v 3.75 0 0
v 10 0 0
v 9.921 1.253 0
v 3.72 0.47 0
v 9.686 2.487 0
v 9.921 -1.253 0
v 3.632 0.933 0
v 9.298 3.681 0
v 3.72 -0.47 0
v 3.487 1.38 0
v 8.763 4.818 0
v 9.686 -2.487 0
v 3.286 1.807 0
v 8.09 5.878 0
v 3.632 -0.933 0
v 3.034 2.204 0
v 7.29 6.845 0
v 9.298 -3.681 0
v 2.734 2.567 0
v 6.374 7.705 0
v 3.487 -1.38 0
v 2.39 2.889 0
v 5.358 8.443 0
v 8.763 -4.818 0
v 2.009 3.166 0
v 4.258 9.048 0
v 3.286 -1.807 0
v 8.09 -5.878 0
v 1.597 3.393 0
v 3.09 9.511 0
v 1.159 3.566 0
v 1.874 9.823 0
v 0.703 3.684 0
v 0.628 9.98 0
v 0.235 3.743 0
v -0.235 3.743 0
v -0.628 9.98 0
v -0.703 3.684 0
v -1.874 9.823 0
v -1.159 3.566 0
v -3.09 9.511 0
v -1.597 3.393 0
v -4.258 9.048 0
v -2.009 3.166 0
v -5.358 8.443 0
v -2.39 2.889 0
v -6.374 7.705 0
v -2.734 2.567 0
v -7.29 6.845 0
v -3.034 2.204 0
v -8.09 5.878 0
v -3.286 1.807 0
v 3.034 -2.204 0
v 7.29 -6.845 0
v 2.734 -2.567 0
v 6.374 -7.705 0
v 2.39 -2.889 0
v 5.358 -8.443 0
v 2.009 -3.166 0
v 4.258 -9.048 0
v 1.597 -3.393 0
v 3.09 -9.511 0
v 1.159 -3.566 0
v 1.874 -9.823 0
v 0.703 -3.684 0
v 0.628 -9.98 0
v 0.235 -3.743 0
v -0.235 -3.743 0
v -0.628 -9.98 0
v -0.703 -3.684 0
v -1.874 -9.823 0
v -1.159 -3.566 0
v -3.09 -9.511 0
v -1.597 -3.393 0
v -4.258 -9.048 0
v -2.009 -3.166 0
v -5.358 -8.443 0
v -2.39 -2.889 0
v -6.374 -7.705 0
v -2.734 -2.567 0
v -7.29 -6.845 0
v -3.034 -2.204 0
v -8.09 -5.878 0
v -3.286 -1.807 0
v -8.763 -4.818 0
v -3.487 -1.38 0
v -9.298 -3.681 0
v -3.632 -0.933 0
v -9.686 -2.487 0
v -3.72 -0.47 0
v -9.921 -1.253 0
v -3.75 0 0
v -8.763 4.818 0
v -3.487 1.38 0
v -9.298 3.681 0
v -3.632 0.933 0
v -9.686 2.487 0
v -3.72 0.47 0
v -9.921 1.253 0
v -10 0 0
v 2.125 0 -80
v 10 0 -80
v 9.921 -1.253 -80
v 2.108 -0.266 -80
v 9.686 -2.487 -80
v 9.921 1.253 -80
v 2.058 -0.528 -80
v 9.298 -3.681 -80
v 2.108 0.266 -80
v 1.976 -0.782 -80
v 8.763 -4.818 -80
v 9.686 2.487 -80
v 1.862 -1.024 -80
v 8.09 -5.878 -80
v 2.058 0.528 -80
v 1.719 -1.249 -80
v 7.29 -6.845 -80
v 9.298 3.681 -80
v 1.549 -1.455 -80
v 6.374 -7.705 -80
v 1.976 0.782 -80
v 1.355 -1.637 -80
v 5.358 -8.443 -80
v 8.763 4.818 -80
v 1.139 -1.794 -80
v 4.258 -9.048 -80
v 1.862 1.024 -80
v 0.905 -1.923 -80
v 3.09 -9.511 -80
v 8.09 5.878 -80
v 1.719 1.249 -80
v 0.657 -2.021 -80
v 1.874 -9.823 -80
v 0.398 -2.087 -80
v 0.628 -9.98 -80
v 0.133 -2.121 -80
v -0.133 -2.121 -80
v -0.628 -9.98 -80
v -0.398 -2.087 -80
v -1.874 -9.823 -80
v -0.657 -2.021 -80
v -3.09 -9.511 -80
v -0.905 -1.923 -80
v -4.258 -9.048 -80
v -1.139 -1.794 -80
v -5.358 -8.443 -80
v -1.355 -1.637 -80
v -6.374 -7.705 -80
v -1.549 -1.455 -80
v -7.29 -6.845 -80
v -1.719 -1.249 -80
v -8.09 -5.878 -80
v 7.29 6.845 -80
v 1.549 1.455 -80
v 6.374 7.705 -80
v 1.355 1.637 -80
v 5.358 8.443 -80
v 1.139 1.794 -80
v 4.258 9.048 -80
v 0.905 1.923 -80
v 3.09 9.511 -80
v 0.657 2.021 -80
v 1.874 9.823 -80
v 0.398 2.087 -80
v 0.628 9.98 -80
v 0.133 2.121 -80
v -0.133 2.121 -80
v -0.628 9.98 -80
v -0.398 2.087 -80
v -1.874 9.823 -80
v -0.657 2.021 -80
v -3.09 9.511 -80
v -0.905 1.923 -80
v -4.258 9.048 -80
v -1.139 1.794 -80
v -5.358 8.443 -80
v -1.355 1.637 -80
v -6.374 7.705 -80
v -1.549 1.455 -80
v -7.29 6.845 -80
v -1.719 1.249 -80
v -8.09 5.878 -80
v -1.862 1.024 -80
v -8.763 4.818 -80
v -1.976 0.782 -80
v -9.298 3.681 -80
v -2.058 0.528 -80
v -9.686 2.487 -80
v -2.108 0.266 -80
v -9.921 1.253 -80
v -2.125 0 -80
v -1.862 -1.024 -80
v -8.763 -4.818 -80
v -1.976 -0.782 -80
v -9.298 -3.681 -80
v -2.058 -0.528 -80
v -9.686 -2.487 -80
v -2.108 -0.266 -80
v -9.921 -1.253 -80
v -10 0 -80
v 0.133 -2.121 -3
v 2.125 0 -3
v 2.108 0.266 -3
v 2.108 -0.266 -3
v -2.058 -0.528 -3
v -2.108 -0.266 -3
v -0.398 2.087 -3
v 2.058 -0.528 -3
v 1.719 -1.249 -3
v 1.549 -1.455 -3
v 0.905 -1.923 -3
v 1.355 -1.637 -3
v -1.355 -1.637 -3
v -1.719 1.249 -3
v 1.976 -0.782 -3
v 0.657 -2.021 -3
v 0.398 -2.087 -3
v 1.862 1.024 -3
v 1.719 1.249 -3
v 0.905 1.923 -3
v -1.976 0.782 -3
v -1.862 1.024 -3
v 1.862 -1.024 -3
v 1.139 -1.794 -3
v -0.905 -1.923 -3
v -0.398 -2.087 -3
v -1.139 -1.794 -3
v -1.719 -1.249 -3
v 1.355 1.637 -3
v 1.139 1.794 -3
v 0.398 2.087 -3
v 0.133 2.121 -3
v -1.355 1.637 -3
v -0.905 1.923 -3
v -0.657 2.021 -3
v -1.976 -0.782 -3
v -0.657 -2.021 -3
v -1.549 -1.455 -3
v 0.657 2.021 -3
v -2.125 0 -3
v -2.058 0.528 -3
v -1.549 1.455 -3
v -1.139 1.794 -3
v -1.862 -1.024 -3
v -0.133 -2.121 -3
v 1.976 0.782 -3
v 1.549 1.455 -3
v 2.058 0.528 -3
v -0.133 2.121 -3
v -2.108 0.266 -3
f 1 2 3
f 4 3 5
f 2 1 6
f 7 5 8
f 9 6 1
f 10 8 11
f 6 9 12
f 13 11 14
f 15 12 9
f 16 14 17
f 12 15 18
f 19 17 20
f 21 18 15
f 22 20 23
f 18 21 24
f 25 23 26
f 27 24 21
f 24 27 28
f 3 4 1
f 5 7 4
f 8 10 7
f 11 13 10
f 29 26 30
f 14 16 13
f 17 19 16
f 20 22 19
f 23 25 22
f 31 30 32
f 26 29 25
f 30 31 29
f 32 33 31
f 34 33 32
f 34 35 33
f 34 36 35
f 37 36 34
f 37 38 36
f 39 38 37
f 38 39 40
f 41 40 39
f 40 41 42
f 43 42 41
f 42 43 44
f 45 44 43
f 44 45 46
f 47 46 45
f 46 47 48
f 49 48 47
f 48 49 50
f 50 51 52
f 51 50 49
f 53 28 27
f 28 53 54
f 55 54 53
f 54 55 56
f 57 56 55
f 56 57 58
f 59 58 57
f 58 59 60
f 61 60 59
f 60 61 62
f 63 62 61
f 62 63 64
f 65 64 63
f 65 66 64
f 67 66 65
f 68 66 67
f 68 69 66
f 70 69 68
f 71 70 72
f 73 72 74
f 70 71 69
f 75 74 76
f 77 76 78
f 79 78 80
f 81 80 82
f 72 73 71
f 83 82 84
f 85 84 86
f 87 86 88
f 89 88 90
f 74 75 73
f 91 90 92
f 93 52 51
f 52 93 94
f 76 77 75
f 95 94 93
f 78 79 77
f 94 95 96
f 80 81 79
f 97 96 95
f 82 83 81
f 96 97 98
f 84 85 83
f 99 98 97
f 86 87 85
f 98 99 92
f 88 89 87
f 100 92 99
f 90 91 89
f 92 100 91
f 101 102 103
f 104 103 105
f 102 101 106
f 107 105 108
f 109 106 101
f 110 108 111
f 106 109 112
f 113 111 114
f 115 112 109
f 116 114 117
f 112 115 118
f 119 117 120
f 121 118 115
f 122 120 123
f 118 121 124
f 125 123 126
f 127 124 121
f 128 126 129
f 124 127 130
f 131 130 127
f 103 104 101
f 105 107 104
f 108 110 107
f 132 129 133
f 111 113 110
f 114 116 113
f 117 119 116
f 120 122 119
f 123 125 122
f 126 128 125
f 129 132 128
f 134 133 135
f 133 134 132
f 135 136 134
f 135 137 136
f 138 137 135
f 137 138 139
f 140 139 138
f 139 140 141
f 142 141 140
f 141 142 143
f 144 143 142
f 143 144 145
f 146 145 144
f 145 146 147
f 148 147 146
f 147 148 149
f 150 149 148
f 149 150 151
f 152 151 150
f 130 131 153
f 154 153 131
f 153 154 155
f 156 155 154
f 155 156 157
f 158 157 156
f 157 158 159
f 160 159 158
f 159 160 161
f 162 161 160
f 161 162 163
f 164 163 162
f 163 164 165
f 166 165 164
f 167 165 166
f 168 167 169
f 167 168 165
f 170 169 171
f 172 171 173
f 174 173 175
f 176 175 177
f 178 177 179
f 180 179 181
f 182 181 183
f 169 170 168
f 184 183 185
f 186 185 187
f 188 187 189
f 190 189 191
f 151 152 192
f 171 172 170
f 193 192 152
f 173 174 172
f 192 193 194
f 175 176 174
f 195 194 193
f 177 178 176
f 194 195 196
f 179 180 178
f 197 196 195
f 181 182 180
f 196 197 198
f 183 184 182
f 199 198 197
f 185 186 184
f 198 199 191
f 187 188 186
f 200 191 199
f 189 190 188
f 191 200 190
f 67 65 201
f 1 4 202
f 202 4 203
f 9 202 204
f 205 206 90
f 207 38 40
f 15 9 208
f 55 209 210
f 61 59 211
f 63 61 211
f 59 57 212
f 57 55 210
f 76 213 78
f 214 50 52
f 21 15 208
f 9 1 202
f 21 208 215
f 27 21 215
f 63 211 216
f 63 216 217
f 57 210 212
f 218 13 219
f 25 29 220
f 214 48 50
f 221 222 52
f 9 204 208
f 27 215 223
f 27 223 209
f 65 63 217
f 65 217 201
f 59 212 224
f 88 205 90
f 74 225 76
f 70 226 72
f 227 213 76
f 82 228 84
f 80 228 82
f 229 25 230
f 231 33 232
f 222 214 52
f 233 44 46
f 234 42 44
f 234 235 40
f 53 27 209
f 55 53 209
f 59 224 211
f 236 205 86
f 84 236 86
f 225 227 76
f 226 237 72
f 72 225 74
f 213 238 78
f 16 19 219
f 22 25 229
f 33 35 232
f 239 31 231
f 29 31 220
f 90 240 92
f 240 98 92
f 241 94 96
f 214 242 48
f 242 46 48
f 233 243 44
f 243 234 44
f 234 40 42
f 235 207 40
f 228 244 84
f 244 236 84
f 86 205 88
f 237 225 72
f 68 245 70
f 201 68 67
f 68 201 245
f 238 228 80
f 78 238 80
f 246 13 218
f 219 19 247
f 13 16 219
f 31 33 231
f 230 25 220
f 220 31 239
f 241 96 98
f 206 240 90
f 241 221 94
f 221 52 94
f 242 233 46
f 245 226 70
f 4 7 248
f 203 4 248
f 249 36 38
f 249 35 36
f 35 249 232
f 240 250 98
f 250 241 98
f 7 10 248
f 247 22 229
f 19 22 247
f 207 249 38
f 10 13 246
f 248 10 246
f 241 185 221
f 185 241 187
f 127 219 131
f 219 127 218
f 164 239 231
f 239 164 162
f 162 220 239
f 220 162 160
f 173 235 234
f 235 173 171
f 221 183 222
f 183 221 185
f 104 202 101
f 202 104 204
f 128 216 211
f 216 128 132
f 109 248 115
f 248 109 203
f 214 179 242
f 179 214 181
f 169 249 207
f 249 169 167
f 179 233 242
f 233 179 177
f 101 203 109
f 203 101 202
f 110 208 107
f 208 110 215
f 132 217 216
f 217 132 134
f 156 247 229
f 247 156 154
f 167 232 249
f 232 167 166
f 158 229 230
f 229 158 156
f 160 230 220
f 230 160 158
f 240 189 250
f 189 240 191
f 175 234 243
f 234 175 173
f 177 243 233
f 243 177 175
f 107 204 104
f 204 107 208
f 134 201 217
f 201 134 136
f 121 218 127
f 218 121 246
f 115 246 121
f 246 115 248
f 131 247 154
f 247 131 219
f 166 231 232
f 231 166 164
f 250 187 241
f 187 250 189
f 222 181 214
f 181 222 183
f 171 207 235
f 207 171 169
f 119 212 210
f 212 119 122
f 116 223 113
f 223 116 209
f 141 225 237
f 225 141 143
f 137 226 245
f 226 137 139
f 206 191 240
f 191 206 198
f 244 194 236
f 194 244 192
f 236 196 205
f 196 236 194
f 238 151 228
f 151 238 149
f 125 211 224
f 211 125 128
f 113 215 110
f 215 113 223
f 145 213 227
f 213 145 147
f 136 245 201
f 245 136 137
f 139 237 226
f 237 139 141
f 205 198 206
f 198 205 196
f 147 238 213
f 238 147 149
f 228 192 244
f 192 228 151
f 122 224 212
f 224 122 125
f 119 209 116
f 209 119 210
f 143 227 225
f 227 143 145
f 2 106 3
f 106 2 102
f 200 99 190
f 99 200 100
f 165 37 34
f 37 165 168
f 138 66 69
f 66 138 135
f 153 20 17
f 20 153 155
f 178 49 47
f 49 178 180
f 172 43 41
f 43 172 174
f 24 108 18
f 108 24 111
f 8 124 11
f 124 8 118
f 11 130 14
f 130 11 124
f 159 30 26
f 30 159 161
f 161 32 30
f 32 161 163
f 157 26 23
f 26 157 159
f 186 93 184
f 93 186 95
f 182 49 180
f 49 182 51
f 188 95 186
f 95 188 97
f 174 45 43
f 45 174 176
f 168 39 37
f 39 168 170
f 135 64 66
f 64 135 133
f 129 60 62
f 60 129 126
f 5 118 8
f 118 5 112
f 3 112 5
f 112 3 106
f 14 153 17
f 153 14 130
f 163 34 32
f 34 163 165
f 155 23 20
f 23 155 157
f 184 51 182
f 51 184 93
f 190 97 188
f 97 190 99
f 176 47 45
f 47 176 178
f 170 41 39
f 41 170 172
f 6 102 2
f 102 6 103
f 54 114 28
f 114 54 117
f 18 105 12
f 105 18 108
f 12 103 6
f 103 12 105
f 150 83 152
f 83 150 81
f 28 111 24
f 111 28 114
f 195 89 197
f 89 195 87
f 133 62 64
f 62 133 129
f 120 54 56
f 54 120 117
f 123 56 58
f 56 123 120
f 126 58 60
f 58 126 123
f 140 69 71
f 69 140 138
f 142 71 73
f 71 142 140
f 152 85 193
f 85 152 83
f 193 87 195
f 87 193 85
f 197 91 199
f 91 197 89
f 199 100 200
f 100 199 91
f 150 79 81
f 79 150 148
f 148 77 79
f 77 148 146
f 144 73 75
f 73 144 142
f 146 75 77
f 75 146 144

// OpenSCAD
$fn = 50;


difference() {
	union() {
		translate(v = [0, 0, -80.0000000000]) {
			cylinder(h = 80, r = 10.0000000000);
		}
		cylinder(h = 0, r = 19.0000000000);
	}
	union() {
		translate(v = [0, 0, 0]) {
			rotate(a = [0, 0, 0]) {
				difference() {
					union() {
						#translate(v = [0, 0, -80.0000000000]) {
							cylinder(h = 80, r = 2.0000000000);
						}
						#translate(v = [0, 0, -3]) {
							cylinder(h = 3, r1 = 2.1250000000, r2 = 3.7500000000);
						}
						#translate(v = [0, 0, -80.0000000000]) {
							cylinder(h = 80, r = 2.1250000000);
						}
						#translate(v = [0, 0, -80.0000000000]) {
							cylinder(h = 80, r = 2.0000000000);
						}
					}
					union();
				}
			}
		}
	}
}
